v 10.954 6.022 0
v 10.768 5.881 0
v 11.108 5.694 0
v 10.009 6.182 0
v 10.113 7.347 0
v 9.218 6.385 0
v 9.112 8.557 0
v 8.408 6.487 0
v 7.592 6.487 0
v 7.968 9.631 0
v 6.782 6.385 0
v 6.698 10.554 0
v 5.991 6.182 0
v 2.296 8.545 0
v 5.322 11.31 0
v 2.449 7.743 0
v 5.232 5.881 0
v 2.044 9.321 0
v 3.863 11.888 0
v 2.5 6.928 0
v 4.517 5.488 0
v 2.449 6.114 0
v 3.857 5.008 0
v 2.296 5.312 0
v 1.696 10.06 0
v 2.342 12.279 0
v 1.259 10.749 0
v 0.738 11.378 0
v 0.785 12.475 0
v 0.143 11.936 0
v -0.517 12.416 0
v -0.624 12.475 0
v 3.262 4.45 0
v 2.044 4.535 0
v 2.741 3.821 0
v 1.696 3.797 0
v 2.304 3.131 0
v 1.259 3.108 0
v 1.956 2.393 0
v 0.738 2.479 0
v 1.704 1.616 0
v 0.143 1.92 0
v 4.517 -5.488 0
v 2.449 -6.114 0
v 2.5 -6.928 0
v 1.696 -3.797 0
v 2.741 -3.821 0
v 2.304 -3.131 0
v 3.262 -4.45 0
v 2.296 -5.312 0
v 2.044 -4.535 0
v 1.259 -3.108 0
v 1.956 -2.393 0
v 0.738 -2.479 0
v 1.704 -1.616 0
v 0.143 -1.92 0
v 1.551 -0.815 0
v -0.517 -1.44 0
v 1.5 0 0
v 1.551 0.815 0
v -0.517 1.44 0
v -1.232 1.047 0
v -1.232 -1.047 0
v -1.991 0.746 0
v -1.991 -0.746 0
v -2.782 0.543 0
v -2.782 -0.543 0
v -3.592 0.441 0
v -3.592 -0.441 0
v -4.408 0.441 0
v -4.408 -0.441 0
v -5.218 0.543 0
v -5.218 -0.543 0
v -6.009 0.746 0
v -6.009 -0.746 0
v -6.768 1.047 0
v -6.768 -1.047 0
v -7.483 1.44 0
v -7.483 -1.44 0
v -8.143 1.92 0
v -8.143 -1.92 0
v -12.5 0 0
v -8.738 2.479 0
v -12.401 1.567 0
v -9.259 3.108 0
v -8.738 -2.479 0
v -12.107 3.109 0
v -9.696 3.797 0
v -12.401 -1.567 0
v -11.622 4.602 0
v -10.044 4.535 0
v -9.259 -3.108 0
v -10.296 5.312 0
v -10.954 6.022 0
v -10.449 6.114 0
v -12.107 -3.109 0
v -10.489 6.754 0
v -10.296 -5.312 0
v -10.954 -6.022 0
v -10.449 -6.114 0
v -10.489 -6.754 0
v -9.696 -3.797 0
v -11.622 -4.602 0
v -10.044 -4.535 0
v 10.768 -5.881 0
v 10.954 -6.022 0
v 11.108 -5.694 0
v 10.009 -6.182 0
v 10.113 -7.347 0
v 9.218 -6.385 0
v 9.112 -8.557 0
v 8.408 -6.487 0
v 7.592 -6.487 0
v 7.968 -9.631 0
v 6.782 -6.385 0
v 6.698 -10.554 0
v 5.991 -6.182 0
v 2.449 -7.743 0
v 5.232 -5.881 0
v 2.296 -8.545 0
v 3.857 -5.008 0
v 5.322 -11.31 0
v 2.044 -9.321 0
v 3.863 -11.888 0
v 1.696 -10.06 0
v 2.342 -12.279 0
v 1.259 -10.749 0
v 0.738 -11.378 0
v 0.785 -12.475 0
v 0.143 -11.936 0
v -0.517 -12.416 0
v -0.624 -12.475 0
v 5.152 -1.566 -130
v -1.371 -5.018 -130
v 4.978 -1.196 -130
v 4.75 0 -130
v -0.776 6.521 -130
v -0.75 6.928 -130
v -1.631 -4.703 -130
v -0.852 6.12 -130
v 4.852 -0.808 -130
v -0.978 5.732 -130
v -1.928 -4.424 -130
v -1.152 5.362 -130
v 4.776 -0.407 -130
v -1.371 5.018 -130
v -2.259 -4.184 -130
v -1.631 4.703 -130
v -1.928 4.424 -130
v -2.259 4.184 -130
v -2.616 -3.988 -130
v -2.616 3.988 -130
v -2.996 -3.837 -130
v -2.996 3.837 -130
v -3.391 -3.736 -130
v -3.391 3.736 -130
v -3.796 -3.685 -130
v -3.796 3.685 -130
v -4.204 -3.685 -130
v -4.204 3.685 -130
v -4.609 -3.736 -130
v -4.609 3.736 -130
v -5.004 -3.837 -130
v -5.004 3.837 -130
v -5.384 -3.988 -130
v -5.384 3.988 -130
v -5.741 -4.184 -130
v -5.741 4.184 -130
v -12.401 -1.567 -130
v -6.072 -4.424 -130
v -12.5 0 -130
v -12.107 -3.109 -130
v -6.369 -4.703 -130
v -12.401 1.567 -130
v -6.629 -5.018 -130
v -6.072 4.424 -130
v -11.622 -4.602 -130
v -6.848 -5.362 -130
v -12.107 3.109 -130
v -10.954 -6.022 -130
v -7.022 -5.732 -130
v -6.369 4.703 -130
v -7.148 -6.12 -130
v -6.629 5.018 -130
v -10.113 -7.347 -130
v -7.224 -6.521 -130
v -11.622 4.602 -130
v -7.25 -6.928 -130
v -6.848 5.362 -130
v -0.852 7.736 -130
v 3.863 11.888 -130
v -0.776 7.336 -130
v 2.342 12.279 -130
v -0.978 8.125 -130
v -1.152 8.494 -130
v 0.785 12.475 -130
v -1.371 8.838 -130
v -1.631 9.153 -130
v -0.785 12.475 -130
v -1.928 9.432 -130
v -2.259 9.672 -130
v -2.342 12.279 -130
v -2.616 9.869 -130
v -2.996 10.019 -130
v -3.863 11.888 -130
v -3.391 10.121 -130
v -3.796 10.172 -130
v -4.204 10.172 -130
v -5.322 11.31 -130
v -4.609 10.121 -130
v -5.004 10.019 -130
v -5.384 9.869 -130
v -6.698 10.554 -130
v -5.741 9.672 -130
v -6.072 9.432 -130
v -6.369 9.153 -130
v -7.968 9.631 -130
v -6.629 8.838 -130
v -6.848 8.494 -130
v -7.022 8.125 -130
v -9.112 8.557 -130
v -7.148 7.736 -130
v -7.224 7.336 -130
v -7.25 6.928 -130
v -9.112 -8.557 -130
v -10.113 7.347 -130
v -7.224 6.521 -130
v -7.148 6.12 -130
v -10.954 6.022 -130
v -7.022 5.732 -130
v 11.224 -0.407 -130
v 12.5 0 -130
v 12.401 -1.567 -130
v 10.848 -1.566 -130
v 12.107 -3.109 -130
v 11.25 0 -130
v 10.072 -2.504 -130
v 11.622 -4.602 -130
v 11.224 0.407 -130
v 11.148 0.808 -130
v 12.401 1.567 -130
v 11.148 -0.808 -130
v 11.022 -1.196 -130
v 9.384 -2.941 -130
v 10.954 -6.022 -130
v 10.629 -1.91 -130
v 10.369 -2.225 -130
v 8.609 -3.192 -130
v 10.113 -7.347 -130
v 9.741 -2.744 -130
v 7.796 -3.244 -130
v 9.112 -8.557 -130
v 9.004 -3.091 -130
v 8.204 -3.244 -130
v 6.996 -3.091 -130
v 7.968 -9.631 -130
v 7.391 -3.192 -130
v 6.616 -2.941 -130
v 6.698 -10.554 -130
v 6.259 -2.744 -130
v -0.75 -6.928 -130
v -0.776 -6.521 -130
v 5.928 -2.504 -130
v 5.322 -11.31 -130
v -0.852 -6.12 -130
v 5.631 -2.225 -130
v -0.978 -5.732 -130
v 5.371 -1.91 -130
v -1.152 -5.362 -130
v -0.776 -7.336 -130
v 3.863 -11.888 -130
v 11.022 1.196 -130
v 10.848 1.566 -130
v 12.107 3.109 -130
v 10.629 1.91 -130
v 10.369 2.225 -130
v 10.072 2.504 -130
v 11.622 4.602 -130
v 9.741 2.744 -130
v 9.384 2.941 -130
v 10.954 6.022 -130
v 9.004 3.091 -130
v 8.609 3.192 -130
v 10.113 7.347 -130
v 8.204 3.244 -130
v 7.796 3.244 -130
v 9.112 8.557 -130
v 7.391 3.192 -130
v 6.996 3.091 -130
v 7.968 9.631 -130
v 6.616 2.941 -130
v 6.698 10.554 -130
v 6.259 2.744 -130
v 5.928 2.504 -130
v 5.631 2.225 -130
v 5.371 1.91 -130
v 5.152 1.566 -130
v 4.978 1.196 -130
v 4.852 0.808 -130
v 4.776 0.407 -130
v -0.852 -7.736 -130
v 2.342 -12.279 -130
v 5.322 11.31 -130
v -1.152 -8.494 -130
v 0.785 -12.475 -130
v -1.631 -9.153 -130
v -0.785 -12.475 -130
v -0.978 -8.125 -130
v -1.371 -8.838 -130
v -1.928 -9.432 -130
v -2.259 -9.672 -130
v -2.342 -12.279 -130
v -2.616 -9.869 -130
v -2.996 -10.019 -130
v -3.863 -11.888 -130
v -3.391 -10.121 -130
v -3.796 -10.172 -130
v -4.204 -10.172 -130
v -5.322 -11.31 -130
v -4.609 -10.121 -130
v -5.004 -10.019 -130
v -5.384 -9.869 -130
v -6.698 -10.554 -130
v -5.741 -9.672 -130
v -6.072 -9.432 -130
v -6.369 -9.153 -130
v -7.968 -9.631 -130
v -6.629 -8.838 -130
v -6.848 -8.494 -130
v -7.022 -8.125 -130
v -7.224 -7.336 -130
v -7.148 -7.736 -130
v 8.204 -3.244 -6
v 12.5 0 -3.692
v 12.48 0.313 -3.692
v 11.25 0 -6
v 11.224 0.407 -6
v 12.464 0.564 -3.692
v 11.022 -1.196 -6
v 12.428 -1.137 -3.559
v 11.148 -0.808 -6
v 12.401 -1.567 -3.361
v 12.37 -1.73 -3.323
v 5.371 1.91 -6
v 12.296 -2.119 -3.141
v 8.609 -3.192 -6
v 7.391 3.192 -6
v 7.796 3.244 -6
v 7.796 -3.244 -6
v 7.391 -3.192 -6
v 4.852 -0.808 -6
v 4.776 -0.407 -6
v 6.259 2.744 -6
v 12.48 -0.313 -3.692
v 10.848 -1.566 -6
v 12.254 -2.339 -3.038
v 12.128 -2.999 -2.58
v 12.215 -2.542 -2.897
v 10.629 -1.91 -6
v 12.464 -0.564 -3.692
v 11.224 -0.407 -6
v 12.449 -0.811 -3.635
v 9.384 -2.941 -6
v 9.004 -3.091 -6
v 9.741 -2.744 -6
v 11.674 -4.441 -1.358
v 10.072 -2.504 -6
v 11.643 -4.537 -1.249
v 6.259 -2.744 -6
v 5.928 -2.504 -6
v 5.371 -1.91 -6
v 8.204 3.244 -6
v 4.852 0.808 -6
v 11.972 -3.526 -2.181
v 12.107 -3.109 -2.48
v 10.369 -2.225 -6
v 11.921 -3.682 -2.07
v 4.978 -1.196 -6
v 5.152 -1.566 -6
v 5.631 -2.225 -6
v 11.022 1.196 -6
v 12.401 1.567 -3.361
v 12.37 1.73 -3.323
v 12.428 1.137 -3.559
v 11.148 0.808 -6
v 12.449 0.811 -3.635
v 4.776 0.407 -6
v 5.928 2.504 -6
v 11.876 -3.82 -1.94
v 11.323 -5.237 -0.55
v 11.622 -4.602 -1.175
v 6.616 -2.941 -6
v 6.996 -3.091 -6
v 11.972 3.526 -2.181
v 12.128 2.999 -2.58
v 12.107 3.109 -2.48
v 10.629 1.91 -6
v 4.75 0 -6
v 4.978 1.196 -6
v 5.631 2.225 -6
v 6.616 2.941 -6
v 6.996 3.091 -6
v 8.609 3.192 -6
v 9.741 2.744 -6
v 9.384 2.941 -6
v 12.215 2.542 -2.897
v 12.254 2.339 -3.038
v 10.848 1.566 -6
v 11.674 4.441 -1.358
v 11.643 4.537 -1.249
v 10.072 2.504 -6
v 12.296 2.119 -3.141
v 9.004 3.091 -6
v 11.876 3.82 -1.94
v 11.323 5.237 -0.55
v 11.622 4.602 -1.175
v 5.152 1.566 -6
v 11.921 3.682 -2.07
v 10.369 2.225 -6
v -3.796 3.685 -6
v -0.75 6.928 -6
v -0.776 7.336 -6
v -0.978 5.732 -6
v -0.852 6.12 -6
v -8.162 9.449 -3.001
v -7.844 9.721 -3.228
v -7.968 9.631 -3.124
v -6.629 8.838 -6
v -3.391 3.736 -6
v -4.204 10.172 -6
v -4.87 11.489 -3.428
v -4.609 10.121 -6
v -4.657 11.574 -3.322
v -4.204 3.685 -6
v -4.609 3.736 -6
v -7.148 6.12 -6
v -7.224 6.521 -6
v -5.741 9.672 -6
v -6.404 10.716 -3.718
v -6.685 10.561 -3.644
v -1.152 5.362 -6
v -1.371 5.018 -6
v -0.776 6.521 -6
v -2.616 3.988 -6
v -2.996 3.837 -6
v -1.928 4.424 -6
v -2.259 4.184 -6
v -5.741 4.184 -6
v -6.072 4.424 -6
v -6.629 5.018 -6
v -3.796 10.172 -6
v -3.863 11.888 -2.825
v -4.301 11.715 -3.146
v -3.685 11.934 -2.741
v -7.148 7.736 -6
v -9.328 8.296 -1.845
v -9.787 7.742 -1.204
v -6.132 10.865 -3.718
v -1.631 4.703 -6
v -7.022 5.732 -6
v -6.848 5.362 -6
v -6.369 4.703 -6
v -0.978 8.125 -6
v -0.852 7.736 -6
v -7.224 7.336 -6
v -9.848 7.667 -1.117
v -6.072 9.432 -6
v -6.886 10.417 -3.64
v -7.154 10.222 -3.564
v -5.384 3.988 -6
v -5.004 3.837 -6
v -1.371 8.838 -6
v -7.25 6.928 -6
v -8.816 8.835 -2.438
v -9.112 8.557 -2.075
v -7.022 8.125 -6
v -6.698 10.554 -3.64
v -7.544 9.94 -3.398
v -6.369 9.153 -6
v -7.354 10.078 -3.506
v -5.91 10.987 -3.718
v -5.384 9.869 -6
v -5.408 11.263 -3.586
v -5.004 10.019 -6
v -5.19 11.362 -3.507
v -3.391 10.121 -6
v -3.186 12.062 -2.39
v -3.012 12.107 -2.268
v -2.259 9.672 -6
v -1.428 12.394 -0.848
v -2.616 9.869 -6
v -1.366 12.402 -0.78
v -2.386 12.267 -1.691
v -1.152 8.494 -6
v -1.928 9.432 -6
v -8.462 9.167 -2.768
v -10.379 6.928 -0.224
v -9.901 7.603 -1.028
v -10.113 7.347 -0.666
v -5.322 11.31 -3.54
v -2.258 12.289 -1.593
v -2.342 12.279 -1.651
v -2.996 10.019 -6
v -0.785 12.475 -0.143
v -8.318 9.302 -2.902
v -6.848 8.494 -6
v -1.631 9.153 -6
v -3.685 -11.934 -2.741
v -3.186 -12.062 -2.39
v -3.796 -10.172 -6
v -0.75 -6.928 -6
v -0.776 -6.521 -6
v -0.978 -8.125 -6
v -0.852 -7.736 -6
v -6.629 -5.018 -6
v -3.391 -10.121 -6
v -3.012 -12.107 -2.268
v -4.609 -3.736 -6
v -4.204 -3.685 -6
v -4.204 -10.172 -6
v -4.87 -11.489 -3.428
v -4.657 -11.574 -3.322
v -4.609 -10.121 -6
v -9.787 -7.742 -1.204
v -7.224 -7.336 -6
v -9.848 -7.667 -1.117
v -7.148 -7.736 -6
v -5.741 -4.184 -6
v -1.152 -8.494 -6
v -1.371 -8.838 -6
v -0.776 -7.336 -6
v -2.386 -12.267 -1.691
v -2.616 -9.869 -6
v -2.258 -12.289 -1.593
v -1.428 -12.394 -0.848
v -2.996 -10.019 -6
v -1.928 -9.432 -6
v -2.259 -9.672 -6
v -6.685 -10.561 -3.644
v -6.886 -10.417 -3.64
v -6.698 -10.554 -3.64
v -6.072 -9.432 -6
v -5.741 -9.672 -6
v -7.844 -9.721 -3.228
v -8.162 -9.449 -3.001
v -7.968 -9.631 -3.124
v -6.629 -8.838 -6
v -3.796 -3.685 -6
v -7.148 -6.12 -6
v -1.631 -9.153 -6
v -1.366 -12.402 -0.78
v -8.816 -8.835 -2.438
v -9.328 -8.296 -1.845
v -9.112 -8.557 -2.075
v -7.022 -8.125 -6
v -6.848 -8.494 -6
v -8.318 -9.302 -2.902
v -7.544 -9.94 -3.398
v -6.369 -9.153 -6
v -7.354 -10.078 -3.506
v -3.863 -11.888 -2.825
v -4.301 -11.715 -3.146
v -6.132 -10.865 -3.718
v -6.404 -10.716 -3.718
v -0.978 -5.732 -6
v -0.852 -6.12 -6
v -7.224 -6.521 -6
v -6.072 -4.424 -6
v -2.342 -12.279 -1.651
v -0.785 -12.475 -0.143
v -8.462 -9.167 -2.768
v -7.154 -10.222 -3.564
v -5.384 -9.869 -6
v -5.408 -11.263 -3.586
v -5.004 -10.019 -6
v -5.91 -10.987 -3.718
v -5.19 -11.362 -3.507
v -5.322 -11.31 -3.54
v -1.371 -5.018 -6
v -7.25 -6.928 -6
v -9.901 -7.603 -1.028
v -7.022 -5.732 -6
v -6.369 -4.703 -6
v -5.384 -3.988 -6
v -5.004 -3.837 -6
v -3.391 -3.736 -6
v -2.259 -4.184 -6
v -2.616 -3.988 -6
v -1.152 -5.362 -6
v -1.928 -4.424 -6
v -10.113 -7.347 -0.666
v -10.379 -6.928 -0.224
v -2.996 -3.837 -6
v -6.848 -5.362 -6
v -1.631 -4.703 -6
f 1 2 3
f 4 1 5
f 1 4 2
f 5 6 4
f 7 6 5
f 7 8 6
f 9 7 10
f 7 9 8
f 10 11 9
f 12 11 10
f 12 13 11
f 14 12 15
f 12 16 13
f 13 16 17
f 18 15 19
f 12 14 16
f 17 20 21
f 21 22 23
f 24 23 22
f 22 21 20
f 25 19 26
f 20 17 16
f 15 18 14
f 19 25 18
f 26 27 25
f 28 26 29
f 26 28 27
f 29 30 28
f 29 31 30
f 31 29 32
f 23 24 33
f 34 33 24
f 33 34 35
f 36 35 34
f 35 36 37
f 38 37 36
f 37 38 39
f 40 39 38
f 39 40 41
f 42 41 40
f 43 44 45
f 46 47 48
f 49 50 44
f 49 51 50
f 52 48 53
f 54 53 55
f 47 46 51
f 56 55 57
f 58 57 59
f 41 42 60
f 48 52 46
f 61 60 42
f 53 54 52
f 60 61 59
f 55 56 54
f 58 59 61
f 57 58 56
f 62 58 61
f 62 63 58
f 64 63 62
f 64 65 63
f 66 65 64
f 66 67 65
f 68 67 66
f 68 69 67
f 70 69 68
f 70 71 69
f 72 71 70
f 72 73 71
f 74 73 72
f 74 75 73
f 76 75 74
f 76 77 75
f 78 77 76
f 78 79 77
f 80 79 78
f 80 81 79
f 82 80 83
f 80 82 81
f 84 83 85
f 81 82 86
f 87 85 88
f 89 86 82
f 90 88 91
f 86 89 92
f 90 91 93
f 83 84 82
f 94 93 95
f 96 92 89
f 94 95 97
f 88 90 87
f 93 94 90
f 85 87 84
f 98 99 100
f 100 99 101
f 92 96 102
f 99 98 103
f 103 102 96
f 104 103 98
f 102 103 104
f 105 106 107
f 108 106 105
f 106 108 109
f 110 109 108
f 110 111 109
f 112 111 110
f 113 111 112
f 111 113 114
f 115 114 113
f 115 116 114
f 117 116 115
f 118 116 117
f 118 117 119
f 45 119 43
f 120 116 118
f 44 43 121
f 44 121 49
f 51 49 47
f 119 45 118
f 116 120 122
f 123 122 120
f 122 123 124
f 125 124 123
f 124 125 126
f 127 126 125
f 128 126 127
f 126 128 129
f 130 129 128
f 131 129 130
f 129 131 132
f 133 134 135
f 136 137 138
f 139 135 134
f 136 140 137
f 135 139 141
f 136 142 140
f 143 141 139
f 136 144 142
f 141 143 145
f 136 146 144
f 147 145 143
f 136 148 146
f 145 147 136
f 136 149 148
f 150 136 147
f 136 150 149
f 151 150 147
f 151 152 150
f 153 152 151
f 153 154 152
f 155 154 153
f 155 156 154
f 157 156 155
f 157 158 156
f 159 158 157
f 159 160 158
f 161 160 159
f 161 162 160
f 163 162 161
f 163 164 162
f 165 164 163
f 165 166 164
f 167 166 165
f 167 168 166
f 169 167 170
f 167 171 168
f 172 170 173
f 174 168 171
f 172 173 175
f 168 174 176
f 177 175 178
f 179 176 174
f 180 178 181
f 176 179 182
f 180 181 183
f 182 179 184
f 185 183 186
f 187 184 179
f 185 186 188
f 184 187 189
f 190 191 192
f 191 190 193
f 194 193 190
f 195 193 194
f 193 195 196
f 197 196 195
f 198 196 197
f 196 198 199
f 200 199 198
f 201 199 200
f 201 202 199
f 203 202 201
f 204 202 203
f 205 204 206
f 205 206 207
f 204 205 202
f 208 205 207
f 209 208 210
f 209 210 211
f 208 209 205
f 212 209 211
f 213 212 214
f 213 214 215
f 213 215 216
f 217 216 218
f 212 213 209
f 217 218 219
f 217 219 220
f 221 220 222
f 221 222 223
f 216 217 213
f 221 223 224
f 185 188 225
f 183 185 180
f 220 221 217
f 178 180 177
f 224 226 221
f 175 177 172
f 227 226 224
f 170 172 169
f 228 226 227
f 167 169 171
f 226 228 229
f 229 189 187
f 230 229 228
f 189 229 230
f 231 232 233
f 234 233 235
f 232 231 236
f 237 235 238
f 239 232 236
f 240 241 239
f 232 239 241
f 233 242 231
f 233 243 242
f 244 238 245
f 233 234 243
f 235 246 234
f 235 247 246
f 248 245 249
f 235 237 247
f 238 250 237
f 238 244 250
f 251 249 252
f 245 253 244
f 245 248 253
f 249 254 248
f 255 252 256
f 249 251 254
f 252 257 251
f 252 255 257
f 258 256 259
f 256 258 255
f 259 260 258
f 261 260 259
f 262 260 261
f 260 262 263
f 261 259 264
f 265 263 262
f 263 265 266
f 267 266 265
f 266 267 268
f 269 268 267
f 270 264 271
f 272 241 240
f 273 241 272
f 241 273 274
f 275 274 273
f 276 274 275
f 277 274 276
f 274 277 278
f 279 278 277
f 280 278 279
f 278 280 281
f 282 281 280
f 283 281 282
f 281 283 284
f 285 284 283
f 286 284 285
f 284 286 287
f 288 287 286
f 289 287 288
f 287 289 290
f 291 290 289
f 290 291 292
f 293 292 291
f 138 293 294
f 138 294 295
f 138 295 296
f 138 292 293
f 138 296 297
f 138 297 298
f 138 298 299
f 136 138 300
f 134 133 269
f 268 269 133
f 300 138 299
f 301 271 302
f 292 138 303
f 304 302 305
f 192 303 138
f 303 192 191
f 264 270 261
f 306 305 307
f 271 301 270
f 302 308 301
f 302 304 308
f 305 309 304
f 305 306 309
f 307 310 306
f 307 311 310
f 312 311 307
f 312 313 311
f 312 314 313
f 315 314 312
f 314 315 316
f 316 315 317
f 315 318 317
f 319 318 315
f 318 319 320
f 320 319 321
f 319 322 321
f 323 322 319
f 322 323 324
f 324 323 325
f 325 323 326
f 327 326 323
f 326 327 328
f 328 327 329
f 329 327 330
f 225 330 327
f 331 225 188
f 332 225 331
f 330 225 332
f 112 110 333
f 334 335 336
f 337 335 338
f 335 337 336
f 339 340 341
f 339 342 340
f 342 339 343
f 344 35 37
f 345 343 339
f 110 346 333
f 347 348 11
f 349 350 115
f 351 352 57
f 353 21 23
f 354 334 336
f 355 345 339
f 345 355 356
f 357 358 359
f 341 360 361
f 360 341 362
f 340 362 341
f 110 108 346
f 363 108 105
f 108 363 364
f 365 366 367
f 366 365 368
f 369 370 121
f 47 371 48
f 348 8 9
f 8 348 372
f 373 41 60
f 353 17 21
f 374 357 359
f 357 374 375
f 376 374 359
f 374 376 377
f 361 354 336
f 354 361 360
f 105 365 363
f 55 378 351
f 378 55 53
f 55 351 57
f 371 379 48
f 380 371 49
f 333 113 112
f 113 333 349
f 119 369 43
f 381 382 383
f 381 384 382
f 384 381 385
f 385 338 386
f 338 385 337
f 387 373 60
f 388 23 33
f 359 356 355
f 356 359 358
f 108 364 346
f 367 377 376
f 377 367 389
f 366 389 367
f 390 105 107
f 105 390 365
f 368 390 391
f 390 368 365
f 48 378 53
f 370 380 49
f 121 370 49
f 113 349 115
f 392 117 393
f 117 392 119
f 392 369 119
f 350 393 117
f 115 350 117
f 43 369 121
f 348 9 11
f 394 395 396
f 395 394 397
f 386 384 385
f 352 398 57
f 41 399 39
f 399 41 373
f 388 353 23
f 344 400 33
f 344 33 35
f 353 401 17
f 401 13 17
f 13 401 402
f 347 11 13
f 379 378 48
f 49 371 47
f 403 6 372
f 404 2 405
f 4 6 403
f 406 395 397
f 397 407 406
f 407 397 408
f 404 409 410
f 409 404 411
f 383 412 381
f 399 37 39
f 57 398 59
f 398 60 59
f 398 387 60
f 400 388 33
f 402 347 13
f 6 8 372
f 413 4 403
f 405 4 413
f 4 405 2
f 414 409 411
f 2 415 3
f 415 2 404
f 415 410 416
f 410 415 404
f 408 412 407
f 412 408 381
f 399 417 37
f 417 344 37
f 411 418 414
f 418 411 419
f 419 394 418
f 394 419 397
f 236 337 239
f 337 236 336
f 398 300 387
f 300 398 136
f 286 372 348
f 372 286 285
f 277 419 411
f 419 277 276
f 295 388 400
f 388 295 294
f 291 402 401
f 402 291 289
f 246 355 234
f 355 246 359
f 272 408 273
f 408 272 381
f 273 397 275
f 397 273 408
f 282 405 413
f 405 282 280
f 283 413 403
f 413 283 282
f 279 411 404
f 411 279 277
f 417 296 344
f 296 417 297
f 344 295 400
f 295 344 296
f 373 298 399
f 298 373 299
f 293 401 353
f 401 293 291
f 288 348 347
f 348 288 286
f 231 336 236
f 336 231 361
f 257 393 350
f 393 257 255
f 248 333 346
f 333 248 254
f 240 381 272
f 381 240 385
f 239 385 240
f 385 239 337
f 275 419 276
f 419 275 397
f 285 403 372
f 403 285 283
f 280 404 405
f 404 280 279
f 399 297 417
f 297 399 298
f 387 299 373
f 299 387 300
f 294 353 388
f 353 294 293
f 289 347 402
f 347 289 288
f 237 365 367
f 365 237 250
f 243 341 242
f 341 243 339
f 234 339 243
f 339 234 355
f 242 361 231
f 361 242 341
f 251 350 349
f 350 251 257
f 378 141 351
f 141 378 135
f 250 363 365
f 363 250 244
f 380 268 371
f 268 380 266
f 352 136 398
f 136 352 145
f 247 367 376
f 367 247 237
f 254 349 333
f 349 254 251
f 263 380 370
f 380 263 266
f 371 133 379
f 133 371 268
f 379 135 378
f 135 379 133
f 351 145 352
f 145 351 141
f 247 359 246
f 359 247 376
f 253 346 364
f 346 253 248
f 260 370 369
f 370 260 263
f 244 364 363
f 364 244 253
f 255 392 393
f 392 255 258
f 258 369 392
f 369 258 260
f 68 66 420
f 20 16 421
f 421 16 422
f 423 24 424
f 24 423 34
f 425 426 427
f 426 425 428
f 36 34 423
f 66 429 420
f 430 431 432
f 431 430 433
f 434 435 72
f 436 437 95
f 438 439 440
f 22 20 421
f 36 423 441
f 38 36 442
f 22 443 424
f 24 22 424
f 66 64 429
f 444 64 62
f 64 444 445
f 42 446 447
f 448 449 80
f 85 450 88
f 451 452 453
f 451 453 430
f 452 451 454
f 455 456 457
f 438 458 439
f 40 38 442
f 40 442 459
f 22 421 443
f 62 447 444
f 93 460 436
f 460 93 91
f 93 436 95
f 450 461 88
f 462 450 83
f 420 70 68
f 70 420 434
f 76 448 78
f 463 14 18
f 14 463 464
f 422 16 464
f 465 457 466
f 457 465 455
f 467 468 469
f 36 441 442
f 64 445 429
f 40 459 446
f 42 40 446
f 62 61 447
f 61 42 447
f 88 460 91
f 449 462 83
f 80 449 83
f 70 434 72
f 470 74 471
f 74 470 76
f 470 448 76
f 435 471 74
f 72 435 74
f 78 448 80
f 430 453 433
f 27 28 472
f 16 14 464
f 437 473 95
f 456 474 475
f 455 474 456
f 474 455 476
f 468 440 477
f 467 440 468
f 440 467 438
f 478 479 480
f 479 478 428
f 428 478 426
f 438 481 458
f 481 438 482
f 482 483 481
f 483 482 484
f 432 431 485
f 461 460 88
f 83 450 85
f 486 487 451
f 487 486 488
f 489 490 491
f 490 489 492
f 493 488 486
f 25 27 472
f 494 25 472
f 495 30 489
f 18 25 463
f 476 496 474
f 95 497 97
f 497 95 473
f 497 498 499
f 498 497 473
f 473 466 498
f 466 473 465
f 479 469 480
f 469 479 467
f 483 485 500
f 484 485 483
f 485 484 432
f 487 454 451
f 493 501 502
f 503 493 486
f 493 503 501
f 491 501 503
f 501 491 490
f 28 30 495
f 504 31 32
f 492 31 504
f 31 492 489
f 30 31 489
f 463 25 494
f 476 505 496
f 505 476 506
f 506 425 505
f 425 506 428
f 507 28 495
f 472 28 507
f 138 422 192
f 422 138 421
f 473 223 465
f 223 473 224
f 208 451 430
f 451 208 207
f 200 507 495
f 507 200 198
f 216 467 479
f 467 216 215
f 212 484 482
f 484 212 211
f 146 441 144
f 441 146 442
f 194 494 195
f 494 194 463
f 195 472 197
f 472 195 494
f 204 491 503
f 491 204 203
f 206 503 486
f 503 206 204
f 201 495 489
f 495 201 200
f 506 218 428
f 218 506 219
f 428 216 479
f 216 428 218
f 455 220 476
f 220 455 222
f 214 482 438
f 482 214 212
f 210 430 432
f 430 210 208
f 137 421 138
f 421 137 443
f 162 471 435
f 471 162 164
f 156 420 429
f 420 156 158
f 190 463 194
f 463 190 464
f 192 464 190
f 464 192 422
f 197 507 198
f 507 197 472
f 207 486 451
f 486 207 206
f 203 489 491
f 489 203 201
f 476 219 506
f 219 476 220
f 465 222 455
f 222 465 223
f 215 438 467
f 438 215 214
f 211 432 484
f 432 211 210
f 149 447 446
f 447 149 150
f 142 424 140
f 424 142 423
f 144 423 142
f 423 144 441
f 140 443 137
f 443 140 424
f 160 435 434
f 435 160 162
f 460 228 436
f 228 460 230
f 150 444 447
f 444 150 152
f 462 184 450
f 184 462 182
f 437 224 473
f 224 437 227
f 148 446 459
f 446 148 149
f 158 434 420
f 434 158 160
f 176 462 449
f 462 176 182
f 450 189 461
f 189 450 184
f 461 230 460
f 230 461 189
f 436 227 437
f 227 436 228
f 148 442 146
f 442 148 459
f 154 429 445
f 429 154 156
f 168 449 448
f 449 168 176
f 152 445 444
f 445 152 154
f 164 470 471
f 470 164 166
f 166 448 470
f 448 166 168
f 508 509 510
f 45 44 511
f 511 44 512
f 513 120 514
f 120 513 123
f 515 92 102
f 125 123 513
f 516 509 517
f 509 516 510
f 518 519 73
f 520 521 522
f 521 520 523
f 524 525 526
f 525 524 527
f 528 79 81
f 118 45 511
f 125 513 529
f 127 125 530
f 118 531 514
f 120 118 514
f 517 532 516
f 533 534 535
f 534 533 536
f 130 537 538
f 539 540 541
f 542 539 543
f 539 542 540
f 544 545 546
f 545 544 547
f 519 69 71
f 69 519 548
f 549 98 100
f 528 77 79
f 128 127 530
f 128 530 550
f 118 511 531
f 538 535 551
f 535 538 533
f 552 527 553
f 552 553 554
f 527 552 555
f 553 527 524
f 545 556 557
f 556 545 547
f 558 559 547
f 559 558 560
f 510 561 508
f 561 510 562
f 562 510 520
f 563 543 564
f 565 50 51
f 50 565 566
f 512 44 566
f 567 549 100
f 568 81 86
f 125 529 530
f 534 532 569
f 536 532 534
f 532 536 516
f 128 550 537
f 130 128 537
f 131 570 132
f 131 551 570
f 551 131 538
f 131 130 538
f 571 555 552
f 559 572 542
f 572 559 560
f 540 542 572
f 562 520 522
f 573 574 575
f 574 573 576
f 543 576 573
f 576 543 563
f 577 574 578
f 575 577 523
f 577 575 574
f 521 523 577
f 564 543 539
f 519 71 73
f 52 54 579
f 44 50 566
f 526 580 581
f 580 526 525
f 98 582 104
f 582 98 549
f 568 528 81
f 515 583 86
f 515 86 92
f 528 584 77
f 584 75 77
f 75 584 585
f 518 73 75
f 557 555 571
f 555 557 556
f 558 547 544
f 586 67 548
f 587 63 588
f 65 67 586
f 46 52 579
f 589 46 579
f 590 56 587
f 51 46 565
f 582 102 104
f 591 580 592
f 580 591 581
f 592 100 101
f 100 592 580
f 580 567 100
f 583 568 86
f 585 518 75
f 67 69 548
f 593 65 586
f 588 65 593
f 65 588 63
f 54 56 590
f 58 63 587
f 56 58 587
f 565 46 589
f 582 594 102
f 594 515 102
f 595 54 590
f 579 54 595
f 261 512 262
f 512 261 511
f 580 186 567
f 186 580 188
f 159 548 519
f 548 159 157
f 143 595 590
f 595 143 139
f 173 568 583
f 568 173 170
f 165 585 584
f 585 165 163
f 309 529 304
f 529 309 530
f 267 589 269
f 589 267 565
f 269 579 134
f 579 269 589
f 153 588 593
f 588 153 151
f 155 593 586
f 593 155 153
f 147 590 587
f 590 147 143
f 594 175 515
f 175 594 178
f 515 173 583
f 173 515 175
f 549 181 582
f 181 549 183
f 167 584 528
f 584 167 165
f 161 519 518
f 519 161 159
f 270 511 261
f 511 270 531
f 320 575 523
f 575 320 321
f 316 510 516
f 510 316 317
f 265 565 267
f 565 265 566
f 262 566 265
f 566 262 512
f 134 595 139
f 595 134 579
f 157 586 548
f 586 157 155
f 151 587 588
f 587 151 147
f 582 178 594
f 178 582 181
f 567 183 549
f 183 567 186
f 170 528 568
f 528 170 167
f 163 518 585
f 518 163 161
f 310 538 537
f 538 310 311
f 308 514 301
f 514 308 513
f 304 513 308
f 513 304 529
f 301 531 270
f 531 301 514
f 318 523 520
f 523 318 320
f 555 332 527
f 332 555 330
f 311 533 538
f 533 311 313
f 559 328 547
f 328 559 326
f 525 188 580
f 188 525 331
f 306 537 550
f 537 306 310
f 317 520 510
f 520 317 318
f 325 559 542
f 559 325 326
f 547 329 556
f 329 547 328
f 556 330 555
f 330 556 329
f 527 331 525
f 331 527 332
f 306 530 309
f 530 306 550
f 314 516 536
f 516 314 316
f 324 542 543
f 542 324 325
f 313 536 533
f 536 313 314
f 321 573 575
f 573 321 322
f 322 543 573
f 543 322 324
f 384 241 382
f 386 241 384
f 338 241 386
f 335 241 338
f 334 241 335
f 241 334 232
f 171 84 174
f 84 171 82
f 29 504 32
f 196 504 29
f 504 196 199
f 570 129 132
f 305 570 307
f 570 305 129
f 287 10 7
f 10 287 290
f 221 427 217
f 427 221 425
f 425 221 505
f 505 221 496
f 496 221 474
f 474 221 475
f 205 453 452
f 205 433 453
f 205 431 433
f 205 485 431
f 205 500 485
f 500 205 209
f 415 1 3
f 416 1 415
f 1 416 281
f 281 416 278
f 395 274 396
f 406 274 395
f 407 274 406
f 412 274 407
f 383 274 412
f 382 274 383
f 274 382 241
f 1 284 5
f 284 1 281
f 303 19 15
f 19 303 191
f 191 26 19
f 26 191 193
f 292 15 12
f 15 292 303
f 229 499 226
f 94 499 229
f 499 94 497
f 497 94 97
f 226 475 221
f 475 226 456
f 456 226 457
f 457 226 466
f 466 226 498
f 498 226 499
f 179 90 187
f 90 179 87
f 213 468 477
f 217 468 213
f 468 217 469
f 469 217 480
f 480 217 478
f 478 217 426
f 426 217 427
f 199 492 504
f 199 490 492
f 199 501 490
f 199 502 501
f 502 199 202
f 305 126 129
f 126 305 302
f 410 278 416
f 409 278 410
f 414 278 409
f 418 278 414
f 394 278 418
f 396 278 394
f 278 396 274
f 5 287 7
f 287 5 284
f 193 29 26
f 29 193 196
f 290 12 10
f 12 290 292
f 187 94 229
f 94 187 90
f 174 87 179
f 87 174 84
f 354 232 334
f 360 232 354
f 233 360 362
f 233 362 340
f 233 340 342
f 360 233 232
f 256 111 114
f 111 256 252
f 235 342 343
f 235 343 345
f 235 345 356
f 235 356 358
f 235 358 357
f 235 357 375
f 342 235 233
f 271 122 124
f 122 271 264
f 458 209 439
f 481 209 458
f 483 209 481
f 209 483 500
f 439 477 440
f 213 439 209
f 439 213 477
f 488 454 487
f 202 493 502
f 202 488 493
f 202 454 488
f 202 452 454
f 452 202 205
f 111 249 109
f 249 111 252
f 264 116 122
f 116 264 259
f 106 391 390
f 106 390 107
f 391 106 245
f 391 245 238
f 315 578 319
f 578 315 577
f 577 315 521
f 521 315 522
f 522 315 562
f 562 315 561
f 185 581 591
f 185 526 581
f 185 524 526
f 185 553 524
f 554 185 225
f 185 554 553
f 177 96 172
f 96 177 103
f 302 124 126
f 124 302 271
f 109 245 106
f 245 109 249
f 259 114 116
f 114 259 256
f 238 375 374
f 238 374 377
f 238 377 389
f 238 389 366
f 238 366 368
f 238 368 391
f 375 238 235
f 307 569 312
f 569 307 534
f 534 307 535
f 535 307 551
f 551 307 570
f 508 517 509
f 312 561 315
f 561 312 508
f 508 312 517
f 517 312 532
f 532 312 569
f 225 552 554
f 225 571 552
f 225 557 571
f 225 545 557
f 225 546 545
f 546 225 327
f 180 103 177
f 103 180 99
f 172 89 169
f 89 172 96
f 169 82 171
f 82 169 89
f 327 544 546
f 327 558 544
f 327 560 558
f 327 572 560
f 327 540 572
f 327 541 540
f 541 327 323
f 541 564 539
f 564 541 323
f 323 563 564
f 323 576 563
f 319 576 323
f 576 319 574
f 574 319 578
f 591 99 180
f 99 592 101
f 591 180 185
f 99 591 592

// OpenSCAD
$fn = 50;


difference() {
	union() {
		translate(v = [0, 0, -130.0000000000]) {
			cylinder(h = 130, r = 12.5000000000);
		}
	}
	union() {
		translate(v = [8.0000000000, 0.0000000000, 0]) {
			rotate(a = [0, 0, 0]) {
				difference() {
					union() {
						#translate(v = [0, 0, -130.0000000000]) {
							cylinder(h = 130, r = 2.2500000000);
						}
						#translate(v = [0, 0, -6]) {
							cylinder(h = 6, r = 12.5000000000, r1 = 3.2500000000, r2 = 6.5000000000);
						}
						#translate(v = [0, 0, -130.0000000000]) {
							cylinder(h = 130, r = 3.2500000000);
						}
						#translate(v = [0, 0, -130.0000000000]) {
							cylinder(h = 130, r = 2.2500000000);
						}
					}
					union();
				}
			}
		}
		translate(v = [-4.0000000000, 6.9282032303, 0]) {
			rotate(a = [0, 0, 0]) {
				difference() {
					union() {
						#translate(v = [0, 0, -130.0000000000]) {
							cylinder(h = 130, r = 2.2500000000);
						}
						#translate(v = [0, 0, -6]) {
							cylinder(h = 6, r = 12.5000000000, r1 = 3.2500000000, r2 = 6.5000000000);
						}
						#translate(v = [0, 0, -130.0000000000]) {
							cylinder(h = 130, r = 3.2500000000);
						}
						#translate(v = [0, 0, -130.0000000000]) {
							cylinder(h = 130, r = 2.2500000000);
						}
					}
					union();
				}
			}
		}
		translate(v = [-4.0000000000, -6.9282032303, 0]) {
			rotate(a = [0, 0, 0]) {
				difference() {
					union() {
						#translate(v = [0, 0, -130.0000000000]) {
							cylinder(h = 130, r = 2.2500000000);
						}
						#translate(v = [0, 0, -6]) {
							cylinder(h = 6, r = 12.5000000000, r1 = 3.2500000000, r2 = 6.5000000000);
						}
						#translate(v = [0, 0, -130.0000000000]) {
							cylinder(h = 130, r = 3.2500000000);
						}
						#translate(v = [0, 0, -130.0000000000]) {
							cylinder(h = 130, r = 2.2500000000);
						}
					}
					union();
				}
			}
		}
	}
}
